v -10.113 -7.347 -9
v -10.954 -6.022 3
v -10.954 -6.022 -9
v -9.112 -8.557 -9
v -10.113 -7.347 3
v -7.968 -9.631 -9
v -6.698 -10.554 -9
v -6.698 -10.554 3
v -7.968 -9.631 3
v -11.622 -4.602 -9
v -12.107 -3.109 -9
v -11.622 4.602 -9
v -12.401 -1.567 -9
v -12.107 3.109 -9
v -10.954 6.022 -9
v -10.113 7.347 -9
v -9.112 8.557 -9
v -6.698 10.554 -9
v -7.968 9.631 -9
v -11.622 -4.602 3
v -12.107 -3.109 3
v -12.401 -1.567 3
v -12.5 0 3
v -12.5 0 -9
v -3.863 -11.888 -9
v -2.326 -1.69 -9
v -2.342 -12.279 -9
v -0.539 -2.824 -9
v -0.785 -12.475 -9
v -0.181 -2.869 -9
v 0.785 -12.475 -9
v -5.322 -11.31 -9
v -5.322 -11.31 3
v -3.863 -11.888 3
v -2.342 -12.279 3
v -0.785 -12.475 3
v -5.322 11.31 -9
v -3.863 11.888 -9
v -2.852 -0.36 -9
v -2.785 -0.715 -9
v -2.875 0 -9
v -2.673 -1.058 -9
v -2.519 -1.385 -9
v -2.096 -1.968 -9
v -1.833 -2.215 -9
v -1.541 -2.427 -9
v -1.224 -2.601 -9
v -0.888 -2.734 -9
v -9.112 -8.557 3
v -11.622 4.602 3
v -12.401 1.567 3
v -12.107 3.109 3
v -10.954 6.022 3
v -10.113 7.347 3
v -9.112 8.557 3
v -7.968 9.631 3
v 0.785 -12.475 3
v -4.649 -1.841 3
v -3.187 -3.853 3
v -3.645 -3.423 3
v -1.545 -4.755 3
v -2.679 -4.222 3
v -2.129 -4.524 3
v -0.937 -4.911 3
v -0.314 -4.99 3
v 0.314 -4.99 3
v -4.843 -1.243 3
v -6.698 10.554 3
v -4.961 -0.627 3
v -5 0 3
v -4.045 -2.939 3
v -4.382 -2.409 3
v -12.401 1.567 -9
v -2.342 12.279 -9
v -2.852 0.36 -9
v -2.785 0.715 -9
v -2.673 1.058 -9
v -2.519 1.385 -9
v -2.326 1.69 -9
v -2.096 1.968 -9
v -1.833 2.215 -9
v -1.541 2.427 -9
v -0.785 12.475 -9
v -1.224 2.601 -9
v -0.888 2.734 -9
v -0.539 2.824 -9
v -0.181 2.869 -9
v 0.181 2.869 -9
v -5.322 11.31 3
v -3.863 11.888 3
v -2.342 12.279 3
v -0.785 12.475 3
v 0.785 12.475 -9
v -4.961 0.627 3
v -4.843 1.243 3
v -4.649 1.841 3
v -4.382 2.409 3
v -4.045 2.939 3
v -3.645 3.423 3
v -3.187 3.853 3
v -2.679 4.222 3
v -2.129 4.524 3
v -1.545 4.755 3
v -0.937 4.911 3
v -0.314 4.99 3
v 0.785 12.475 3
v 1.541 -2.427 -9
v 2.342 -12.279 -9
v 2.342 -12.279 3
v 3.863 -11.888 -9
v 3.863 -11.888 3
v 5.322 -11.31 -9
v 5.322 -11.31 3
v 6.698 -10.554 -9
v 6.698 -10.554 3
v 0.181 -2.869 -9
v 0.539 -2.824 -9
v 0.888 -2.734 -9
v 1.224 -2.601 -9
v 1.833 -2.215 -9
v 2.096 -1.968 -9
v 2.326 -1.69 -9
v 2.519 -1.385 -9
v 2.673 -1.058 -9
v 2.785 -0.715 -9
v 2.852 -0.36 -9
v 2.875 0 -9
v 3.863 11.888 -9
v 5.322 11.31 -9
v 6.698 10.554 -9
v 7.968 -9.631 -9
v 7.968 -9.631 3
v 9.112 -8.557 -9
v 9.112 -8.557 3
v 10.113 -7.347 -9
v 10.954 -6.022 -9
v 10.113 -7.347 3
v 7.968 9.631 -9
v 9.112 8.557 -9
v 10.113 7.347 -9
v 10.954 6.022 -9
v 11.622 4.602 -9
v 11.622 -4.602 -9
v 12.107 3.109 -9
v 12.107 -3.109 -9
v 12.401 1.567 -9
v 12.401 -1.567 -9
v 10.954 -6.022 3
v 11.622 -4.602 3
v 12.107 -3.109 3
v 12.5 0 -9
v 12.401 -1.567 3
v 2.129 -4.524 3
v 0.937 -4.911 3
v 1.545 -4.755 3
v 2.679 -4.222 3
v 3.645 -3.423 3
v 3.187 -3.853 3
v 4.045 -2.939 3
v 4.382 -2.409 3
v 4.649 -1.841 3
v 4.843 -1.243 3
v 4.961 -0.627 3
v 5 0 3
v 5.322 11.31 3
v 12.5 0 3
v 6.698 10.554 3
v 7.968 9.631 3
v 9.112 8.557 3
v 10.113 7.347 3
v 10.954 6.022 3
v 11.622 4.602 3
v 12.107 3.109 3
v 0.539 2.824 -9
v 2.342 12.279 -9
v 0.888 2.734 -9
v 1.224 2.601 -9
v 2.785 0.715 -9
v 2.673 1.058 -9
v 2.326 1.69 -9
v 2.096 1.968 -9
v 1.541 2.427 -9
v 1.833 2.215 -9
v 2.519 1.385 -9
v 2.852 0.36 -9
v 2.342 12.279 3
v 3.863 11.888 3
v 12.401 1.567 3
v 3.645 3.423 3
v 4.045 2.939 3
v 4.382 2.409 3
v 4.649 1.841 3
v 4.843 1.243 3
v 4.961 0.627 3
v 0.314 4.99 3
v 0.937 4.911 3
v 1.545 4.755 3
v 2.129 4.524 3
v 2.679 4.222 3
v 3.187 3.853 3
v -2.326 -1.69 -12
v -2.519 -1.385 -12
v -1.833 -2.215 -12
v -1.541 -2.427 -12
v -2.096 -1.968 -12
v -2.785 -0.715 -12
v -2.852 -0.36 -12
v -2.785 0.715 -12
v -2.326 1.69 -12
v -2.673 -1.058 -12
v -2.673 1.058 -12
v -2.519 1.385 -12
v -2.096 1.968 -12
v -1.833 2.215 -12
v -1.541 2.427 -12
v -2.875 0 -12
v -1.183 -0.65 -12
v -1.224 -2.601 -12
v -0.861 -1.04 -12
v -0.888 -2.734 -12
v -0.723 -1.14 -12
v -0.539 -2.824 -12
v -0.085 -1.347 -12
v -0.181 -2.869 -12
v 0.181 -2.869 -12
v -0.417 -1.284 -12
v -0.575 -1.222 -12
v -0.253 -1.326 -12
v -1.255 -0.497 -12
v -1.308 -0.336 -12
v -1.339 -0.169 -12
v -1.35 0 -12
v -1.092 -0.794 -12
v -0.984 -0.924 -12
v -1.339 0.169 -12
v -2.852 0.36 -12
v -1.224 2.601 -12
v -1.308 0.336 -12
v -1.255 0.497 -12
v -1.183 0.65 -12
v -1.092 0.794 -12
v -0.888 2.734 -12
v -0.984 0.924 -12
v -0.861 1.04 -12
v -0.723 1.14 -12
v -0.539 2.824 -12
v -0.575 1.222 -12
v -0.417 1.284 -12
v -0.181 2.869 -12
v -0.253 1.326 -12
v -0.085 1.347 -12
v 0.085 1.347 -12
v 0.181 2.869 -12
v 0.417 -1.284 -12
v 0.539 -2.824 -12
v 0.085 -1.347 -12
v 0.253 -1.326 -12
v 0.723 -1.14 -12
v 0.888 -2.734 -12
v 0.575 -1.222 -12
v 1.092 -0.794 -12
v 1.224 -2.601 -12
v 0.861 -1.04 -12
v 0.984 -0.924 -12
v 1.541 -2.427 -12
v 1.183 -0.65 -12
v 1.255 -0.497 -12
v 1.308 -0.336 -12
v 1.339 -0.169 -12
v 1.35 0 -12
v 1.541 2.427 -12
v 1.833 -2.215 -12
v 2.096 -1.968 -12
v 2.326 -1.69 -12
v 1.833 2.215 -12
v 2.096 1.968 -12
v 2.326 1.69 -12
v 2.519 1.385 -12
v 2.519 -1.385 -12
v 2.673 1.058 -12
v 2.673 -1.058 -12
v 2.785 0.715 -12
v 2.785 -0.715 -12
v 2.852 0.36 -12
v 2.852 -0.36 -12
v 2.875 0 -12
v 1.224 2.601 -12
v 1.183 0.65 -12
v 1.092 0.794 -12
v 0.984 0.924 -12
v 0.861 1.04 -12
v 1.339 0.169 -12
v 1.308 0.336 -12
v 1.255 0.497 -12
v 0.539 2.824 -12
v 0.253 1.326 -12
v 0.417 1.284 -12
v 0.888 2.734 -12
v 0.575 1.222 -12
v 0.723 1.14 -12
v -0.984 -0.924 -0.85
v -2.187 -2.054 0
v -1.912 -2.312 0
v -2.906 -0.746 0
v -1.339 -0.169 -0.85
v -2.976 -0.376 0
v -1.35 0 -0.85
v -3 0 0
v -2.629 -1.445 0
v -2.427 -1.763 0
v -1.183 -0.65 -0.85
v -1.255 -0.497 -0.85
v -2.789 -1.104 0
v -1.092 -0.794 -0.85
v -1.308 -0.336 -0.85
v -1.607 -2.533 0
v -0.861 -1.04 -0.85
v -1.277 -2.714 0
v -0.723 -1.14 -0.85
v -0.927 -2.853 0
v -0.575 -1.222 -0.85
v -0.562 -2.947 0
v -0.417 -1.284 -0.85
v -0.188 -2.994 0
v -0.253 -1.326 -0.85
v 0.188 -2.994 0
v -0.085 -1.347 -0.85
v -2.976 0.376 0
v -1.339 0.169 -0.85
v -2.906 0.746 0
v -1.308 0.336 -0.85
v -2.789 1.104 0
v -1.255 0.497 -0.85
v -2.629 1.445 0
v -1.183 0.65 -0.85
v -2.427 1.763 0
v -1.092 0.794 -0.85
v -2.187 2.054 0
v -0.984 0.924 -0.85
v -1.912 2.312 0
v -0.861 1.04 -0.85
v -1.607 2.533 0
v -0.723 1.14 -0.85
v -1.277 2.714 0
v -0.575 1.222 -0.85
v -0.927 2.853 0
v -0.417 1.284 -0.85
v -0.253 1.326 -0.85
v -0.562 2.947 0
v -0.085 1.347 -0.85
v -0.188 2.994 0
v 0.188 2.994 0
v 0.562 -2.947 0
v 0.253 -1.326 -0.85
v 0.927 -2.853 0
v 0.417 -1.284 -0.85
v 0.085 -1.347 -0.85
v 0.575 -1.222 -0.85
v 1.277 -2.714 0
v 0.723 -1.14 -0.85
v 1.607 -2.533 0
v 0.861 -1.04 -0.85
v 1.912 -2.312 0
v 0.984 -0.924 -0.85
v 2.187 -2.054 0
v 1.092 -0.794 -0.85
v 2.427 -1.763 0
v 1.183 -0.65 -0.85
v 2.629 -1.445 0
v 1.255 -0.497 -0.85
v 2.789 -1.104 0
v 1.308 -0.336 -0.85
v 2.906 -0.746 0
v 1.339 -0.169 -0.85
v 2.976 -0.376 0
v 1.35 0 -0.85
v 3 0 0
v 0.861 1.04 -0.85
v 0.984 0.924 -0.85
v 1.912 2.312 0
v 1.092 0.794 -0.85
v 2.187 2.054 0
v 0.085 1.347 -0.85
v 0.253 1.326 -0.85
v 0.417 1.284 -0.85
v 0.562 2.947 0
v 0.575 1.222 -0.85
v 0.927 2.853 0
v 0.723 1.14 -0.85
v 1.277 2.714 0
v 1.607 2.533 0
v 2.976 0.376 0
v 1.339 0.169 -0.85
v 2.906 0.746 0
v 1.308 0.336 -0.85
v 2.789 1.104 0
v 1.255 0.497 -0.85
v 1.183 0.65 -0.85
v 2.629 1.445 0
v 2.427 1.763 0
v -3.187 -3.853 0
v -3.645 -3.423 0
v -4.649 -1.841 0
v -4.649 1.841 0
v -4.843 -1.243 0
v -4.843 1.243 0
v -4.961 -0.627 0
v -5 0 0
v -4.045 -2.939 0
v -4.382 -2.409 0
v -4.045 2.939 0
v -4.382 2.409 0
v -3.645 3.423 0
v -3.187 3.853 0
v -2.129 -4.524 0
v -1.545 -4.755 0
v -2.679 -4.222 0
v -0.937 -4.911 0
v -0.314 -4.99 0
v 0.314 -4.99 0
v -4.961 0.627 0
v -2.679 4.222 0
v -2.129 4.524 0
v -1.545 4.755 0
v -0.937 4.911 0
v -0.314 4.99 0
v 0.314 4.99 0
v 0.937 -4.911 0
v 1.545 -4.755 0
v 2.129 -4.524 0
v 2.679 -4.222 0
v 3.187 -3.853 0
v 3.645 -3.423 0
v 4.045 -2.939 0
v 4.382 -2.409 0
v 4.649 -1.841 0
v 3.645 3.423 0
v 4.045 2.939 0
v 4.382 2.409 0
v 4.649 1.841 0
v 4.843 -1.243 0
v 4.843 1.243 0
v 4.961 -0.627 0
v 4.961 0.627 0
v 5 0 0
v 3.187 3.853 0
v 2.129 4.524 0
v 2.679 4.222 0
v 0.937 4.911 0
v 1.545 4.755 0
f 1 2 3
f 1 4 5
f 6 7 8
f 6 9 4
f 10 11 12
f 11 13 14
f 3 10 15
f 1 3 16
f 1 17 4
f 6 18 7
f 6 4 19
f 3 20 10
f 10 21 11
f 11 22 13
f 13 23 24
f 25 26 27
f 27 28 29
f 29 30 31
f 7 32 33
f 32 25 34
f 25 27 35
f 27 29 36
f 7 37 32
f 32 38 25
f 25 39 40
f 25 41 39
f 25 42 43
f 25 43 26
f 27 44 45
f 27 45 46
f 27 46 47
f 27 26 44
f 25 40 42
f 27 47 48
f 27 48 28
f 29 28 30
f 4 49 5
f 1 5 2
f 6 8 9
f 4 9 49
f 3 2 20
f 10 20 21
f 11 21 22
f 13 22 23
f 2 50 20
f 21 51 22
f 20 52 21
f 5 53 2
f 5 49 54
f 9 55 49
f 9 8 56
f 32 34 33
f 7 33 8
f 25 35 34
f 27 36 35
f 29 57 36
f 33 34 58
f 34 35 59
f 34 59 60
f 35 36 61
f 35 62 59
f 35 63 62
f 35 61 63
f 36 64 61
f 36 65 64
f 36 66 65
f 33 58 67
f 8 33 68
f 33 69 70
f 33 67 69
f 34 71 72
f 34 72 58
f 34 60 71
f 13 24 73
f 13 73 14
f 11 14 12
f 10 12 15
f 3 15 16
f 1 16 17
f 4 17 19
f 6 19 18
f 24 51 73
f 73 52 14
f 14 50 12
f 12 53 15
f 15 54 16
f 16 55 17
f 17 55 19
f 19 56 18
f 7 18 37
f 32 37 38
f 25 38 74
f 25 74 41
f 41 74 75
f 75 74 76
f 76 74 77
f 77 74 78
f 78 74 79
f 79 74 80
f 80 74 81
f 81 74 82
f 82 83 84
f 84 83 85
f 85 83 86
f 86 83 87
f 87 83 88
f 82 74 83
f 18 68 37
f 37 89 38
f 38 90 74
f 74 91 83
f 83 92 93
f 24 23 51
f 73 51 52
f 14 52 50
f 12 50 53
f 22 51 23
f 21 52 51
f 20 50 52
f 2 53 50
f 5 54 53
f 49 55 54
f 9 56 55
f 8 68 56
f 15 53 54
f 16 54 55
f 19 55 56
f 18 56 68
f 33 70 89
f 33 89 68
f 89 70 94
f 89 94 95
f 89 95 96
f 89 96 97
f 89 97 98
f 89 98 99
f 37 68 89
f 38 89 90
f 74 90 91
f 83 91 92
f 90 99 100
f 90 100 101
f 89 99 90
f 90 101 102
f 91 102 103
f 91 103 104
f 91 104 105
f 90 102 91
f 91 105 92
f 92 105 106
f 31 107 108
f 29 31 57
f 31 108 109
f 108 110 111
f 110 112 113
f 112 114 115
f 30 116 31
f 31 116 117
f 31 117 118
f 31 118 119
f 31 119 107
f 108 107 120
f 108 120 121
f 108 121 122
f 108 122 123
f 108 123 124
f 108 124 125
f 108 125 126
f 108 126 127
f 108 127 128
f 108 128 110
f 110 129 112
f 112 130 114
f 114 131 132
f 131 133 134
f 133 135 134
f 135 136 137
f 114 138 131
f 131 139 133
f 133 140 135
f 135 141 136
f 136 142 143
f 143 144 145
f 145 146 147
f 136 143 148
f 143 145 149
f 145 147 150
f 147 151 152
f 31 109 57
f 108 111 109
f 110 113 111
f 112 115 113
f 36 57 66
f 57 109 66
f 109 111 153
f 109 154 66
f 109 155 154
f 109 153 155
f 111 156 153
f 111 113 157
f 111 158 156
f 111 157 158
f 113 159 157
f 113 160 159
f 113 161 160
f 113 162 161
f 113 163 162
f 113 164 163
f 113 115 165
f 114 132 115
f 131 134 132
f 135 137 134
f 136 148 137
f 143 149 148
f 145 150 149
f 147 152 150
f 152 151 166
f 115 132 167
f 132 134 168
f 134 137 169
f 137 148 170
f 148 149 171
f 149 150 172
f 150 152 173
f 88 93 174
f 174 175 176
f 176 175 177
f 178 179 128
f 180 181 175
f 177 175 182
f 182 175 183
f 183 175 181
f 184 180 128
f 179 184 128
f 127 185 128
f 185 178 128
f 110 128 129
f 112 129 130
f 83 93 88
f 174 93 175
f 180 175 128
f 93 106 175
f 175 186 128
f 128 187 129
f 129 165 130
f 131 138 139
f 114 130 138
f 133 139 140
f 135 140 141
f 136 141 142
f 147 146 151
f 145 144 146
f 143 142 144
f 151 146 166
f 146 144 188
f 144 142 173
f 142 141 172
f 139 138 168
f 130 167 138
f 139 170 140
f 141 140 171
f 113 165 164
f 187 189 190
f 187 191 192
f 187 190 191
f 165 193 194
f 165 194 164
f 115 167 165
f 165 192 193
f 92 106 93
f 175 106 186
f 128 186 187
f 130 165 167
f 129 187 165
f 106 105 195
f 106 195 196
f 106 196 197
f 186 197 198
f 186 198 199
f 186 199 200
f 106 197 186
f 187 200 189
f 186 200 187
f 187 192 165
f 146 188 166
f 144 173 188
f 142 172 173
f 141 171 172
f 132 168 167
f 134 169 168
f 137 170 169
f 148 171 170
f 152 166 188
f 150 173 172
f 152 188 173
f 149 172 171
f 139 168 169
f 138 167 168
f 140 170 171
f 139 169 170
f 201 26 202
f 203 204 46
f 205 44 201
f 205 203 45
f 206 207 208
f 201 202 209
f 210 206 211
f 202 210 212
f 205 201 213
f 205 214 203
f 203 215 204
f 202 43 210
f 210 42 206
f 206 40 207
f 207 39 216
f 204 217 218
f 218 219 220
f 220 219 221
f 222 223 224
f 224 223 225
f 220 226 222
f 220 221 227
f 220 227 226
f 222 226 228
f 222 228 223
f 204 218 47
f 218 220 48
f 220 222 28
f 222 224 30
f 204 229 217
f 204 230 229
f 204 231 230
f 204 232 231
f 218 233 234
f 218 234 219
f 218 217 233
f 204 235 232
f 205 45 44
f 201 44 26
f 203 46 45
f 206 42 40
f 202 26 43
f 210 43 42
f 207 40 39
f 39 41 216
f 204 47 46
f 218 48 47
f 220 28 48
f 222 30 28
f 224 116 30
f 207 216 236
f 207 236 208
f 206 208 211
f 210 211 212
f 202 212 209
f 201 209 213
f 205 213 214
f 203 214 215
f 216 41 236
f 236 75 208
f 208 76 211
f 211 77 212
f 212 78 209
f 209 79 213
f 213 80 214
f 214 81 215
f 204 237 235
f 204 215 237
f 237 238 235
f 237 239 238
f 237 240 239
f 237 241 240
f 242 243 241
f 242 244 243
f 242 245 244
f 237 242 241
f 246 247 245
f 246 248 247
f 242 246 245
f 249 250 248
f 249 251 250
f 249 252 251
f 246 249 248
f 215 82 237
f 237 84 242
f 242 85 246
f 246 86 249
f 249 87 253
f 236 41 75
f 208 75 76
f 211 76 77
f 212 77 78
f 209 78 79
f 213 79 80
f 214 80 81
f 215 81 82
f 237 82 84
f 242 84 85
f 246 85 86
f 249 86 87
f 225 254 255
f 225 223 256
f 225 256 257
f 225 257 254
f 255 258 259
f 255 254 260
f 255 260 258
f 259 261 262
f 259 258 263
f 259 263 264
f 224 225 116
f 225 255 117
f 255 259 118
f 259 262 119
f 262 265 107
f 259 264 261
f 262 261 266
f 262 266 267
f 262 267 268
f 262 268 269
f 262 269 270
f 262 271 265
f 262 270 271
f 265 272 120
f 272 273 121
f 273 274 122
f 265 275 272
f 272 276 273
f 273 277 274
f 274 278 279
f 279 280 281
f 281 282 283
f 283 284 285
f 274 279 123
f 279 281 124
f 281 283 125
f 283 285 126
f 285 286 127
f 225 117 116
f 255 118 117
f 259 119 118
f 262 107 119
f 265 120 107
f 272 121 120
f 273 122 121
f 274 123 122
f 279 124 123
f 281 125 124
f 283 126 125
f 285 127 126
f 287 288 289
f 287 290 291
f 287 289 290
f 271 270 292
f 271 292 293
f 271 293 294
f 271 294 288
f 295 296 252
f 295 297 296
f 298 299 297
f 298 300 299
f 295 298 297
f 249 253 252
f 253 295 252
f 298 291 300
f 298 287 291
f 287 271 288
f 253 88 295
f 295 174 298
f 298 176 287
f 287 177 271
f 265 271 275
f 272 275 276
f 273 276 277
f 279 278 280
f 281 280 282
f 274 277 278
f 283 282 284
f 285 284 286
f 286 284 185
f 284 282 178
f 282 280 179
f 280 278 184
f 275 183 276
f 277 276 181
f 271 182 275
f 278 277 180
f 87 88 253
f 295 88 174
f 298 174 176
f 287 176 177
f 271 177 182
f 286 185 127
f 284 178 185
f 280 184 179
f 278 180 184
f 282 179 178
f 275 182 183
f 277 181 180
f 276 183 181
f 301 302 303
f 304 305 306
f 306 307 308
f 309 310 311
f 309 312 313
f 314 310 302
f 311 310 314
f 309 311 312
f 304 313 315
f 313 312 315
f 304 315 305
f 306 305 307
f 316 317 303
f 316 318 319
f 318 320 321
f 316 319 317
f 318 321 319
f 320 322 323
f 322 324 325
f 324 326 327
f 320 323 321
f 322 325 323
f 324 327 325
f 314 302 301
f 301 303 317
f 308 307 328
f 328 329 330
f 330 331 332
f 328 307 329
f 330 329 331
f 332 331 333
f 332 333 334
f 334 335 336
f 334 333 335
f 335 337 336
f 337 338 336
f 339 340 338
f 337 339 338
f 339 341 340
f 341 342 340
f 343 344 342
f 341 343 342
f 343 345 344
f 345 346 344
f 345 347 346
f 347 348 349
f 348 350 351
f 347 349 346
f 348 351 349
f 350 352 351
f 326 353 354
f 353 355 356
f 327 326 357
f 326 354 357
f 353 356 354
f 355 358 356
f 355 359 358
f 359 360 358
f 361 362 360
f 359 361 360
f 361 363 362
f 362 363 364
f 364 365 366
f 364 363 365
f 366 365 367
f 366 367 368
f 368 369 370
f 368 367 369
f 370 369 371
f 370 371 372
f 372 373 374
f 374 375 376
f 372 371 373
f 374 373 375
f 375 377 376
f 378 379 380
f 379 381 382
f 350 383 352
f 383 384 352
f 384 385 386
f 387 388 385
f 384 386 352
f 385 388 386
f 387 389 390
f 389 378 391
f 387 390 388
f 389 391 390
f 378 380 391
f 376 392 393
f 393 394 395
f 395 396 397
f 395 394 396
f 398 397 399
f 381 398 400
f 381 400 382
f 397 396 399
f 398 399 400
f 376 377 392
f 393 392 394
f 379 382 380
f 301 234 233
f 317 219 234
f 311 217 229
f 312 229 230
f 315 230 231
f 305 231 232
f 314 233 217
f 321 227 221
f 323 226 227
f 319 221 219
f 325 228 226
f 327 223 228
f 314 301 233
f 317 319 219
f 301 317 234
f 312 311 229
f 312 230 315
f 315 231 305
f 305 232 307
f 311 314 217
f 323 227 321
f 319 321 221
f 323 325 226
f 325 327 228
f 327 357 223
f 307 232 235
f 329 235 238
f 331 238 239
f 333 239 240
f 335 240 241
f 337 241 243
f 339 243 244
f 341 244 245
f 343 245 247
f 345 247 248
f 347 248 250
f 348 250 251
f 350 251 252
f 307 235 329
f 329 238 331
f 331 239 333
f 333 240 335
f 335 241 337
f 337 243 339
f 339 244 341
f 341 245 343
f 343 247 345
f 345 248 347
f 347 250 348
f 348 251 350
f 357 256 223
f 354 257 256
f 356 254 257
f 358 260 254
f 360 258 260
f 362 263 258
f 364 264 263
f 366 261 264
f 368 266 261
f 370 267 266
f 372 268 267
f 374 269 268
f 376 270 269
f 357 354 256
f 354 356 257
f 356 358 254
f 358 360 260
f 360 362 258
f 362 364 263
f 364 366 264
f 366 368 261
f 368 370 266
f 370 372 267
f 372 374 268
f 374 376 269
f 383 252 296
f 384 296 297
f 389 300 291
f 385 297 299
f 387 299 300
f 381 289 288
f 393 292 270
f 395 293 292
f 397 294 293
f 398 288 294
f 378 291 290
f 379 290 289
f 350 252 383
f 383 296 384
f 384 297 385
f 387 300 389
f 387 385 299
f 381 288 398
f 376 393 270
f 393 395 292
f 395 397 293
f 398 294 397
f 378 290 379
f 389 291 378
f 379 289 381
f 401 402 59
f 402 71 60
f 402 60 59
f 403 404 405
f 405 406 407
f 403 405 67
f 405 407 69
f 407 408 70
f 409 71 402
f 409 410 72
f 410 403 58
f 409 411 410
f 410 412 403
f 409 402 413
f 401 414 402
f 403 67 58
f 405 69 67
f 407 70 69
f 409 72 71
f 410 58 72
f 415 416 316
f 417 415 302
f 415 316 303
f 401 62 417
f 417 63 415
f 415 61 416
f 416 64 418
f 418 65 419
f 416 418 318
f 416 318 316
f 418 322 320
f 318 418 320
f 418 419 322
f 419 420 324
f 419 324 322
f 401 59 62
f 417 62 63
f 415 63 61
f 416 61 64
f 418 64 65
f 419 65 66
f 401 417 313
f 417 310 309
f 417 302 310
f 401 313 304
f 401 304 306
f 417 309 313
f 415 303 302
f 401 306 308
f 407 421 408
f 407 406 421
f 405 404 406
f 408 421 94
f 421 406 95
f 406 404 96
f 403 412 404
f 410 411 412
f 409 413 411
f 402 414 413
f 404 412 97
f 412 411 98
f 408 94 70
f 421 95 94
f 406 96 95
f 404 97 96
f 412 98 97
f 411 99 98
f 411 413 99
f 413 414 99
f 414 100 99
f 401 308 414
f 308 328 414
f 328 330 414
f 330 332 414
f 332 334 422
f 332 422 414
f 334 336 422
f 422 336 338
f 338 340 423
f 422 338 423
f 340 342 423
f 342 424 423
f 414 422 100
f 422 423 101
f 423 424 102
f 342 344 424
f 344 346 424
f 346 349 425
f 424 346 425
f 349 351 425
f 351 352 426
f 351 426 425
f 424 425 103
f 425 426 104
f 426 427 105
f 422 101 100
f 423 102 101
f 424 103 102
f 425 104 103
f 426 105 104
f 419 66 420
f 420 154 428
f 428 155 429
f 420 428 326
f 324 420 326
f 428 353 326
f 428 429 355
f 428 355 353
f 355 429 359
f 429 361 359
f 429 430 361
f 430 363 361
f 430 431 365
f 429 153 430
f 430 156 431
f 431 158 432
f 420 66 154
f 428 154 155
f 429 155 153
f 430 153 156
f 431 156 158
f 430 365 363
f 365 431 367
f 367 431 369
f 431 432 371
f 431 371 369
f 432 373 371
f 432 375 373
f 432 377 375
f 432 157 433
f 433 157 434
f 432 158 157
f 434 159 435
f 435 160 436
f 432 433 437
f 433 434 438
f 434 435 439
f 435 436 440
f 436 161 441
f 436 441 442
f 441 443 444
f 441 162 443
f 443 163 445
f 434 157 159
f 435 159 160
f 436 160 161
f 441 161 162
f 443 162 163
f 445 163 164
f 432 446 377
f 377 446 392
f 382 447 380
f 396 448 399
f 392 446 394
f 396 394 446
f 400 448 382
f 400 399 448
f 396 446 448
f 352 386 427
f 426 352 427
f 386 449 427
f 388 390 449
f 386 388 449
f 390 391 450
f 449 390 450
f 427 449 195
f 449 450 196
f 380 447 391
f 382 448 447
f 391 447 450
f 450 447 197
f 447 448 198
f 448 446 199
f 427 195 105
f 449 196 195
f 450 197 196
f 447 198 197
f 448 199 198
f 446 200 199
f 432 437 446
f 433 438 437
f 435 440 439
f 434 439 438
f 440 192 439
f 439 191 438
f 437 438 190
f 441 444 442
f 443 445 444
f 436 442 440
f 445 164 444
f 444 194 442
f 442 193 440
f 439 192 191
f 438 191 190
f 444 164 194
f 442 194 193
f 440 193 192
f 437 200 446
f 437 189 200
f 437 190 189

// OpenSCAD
$fn = 50;

difference() {
	union() {
		translate(v = [0, 0, -9.0]) {
			cylinder(h = 12, r = 12.5);
		}
		#translate(v = [0, 0, -12.0]) {
			cylinder(h = 12, r = 2.875);
		}
	}
	union() {
		translate(v = [0, 0, 0]) {
			rotate(a = [0, 0, 0]) {
				difference() {
					union() {
						translate(v = [0, 0, -12.0]) {
							cylinder(h = 12, r = 1.0);
						}
						translate(v = [0, 0, -0.85]) {
							cylinder(h = 0.85, r1 = 1.35, r2 = 3.0);
						}
						translate(v = [0, 0, -12.0]) {
							cylinder(h = 12, r = 1.35);
						}
						translate(v = [0, 0, -12.0]) {
							cylinder(h = 12, r = 1.0);
						}
					}
					union();
				}
			}
		}
		#cylinder(h = 3, r = 5.0);
	}
}
